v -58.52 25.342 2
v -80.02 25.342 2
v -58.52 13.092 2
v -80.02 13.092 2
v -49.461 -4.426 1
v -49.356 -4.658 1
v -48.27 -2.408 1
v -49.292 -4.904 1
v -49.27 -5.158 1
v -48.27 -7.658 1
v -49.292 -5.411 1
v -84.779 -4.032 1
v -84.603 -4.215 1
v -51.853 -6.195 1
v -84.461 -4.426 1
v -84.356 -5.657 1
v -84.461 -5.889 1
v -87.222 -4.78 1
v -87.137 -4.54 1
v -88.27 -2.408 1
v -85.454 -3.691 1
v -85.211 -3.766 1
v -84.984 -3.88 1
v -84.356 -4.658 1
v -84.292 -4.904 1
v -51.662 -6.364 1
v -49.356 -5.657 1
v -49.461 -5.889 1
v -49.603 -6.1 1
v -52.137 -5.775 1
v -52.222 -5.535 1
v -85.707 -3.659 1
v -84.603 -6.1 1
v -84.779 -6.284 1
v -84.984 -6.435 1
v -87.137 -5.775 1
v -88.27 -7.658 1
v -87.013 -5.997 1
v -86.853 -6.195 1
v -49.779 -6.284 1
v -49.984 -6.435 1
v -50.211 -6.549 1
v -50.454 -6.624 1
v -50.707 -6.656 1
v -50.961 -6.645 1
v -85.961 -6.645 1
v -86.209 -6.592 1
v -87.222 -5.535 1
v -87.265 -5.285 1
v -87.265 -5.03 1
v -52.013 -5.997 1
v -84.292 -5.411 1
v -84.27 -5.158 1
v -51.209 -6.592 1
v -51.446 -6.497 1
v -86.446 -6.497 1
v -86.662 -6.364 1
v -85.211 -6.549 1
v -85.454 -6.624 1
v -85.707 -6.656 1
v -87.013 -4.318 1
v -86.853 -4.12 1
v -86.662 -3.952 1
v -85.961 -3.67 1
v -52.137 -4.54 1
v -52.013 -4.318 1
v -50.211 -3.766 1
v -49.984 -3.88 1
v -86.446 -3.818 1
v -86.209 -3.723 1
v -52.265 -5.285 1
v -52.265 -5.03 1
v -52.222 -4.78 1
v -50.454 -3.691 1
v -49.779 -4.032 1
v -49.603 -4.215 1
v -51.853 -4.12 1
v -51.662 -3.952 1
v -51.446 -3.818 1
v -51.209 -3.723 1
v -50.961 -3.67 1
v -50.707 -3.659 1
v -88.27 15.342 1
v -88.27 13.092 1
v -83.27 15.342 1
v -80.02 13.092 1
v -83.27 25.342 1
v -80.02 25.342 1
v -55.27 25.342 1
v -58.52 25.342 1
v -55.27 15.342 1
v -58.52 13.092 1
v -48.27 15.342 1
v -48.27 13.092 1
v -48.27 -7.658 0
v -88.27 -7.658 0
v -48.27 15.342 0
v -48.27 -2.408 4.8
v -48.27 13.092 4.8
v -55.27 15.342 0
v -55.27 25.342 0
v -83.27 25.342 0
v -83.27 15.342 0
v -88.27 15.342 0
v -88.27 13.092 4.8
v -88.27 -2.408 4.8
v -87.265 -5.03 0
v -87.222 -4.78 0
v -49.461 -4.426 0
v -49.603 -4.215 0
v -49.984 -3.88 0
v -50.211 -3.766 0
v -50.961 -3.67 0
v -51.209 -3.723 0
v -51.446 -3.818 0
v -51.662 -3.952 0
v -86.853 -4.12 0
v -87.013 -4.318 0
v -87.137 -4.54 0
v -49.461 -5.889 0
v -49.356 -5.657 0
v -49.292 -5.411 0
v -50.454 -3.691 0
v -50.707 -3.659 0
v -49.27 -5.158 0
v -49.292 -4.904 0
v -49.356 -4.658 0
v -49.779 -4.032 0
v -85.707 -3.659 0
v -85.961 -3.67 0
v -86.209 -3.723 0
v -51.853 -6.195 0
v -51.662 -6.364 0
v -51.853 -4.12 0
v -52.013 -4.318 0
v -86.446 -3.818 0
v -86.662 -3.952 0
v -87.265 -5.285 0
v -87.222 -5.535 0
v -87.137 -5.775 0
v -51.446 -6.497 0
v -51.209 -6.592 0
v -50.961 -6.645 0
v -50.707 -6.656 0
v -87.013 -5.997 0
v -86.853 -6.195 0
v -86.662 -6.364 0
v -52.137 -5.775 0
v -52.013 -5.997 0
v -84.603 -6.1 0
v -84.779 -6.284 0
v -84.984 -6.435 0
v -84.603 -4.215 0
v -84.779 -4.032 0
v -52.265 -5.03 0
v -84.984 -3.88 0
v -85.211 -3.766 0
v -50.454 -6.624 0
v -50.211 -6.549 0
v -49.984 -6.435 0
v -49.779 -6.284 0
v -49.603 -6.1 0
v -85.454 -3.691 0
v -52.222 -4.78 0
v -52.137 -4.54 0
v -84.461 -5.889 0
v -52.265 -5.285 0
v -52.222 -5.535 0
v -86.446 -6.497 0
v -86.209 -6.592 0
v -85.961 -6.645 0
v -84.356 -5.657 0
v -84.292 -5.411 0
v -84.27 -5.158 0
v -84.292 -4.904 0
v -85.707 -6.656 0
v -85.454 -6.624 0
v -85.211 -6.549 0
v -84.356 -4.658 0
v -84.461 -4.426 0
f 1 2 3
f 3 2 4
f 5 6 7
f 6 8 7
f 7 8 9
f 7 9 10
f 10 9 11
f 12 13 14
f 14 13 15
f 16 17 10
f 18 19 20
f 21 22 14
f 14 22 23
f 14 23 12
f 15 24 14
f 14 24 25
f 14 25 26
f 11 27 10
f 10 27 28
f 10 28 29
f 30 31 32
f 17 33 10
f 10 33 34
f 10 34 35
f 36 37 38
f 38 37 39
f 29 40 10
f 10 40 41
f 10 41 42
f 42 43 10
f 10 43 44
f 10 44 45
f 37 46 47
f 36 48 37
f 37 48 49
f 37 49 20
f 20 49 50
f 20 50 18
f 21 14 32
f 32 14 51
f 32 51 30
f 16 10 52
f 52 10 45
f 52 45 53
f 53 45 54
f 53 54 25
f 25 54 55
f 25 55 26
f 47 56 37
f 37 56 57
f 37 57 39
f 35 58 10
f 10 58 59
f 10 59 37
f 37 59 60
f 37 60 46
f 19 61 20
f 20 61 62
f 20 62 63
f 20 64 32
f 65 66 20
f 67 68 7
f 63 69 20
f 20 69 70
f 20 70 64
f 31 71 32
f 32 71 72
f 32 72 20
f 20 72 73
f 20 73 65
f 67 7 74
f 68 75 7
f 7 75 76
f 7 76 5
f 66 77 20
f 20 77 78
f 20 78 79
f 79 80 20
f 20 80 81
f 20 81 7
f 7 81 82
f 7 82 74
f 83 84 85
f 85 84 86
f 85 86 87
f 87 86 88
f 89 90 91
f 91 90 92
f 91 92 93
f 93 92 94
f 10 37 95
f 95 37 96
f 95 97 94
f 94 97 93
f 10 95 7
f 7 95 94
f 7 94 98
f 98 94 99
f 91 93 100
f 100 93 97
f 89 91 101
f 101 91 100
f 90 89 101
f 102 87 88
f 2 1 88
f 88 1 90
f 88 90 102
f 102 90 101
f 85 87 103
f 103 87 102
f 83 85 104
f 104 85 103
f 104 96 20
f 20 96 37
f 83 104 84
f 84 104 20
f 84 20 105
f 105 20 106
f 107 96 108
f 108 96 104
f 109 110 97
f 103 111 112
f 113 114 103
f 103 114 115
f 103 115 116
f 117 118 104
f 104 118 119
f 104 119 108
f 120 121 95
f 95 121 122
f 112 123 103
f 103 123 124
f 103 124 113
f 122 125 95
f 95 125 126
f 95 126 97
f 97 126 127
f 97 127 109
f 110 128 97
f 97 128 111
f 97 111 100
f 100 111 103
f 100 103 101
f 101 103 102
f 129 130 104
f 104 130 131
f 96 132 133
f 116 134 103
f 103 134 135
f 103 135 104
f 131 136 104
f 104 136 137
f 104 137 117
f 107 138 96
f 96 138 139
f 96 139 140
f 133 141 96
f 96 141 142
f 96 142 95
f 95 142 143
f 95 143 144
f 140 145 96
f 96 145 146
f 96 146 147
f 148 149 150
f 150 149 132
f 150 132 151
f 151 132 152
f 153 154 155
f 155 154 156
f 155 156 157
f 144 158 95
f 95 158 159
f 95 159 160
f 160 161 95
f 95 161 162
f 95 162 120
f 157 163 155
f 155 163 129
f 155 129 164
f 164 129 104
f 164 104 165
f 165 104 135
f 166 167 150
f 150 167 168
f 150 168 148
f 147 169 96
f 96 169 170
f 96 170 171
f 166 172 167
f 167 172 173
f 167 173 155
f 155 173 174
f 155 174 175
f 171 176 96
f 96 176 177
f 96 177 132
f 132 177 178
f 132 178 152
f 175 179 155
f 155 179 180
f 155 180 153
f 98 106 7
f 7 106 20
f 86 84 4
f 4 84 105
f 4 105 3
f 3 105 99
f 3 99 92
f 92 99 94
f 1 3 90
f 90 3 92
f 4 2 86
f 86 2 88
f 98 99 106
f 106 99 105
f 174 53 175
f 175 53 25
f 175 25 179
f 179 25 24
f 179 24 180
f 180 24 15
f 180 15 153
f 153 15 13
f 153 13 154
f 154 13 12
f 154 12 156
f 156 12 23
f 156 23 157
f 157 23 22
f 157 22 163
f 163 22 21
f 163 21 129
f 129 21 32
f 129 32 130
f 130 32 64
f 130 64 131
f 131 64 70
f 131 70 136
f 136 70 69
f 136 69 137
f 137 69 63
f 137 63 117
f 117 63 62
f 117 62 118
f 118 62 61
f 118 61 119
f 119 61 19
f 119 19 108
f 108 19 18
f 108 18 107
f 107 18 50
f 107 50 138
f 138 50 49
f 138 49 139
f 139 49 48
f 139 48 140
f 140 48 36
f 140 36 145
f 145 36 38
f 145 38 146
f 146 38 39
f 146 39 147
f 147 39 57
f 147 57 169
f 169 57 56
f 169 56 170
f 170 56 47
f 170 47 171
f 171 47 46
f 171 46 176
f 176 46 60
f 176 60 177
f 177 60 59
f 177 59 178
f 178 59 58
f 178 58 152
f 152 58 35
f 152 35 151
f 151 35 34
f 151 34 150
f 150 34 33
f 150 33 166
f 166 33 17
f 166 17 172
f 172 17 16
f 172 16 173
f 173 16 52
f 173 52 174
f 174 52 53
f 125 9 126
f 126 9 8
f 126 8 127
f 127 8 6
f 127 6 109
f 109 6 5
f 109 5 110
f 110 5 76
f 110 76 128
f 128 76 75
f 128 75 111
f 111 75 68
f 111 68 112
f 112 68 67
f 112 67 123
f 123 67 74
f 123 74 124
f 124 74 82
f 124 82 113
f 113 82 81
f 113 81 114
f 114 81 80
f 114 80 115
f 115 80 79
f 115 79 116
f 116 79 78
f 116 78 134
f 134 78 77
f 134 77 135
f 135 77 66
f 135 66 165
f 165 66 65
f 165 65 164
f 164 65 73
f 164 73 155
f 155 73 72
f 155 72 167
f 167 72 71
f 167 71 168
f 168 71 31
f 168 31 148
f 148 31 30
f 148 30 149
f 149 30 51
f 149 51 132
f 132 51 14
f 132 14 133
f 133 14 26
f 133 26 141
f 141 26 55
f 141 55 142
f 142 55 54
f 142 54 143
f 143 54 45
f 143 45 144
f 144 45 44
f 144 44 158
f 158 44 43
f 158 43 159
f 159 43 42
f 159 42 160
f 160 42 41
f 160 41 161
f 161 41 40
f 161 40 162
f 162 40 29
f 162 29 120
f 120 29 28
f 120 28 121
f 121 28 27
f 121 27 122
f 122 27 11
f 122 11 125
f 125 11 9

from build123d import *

# Parameters (mm, degrees)
SALIENTE_EXTRUIR1_DEPTH = 1
SALIENTE_EXTRUIR2_DEPTH = 1
CROQUIS3_W              = 40
CROQUIS3_H              = 15.5
SALIENTE_EXTRUIR3_DEPTH = 2.8
CROQUIS4_R              = 1.5
CORTAR_EXTRUIR1_DEPTH   = 1


with BuildPart() as part:
    # Croquis1 → Saliente-Extruir1 (new body)
    with BuildSketch(Plane.XY):
        Polygon((-88.270256069, -7.657514328), (-88.270256069, 15.342485672), (-83.270256069, 15.342485672), (-83.270256069, 25.342485672), (-55.270256069, 25.342485672), (-55.270256069, 15.342485672), (-48.270256069, 15.342485672), (-48.270256069, -7.657514328), align=None)
    extrude(amount=SALIENTE_EXTRUIR1_DEPTH)

    # Croquis2 → Saliente-Extruir2 (add)
    with BuildSketch(Plane.XY.offset(1)):
        Polygon((-88.270256069, -2.407514328), (-88.270256069, 13.092485672), (-80.020256069, 13.092485672), (-80.020256069, 25.342485672), (-58.520256069, 25.342485672), (-58.520256069, 13.092485672), (-48.270256069, 13.092485672), (-48.270256069, -2.407514328), align=None)
    extrude(amount=SALIENTE_EXTRUIR2_DEPTH)

    # Croquis3 → Saliente-Extruir3 (add)
    with BuildSketch(Plane.XY.offset(2)):
        with Locations((-68.270256069, 5.342485672)):
            Rectangle(CROQUIS3_W, CROQUIS3_H)
    extrude(amount=SALIENTE_EXTRUIR3_DEPTH)

    # Croquis4 → Cortar-Extruir1 (cut)
    with BuildSketch(Plane.XY.offset(1)):
        with Locations((-85.770256069, -5.157514328)):
            Circle(CROQUIS4_R)
        with Locations((-50.770256069, -5.157514328)):
            Circle(CROQUIS4_R)
    extrude(amount=-CORTAR_EXTRUIR1_DEPTH, mode=Mode.SUBTRACT)


solid = part.part
